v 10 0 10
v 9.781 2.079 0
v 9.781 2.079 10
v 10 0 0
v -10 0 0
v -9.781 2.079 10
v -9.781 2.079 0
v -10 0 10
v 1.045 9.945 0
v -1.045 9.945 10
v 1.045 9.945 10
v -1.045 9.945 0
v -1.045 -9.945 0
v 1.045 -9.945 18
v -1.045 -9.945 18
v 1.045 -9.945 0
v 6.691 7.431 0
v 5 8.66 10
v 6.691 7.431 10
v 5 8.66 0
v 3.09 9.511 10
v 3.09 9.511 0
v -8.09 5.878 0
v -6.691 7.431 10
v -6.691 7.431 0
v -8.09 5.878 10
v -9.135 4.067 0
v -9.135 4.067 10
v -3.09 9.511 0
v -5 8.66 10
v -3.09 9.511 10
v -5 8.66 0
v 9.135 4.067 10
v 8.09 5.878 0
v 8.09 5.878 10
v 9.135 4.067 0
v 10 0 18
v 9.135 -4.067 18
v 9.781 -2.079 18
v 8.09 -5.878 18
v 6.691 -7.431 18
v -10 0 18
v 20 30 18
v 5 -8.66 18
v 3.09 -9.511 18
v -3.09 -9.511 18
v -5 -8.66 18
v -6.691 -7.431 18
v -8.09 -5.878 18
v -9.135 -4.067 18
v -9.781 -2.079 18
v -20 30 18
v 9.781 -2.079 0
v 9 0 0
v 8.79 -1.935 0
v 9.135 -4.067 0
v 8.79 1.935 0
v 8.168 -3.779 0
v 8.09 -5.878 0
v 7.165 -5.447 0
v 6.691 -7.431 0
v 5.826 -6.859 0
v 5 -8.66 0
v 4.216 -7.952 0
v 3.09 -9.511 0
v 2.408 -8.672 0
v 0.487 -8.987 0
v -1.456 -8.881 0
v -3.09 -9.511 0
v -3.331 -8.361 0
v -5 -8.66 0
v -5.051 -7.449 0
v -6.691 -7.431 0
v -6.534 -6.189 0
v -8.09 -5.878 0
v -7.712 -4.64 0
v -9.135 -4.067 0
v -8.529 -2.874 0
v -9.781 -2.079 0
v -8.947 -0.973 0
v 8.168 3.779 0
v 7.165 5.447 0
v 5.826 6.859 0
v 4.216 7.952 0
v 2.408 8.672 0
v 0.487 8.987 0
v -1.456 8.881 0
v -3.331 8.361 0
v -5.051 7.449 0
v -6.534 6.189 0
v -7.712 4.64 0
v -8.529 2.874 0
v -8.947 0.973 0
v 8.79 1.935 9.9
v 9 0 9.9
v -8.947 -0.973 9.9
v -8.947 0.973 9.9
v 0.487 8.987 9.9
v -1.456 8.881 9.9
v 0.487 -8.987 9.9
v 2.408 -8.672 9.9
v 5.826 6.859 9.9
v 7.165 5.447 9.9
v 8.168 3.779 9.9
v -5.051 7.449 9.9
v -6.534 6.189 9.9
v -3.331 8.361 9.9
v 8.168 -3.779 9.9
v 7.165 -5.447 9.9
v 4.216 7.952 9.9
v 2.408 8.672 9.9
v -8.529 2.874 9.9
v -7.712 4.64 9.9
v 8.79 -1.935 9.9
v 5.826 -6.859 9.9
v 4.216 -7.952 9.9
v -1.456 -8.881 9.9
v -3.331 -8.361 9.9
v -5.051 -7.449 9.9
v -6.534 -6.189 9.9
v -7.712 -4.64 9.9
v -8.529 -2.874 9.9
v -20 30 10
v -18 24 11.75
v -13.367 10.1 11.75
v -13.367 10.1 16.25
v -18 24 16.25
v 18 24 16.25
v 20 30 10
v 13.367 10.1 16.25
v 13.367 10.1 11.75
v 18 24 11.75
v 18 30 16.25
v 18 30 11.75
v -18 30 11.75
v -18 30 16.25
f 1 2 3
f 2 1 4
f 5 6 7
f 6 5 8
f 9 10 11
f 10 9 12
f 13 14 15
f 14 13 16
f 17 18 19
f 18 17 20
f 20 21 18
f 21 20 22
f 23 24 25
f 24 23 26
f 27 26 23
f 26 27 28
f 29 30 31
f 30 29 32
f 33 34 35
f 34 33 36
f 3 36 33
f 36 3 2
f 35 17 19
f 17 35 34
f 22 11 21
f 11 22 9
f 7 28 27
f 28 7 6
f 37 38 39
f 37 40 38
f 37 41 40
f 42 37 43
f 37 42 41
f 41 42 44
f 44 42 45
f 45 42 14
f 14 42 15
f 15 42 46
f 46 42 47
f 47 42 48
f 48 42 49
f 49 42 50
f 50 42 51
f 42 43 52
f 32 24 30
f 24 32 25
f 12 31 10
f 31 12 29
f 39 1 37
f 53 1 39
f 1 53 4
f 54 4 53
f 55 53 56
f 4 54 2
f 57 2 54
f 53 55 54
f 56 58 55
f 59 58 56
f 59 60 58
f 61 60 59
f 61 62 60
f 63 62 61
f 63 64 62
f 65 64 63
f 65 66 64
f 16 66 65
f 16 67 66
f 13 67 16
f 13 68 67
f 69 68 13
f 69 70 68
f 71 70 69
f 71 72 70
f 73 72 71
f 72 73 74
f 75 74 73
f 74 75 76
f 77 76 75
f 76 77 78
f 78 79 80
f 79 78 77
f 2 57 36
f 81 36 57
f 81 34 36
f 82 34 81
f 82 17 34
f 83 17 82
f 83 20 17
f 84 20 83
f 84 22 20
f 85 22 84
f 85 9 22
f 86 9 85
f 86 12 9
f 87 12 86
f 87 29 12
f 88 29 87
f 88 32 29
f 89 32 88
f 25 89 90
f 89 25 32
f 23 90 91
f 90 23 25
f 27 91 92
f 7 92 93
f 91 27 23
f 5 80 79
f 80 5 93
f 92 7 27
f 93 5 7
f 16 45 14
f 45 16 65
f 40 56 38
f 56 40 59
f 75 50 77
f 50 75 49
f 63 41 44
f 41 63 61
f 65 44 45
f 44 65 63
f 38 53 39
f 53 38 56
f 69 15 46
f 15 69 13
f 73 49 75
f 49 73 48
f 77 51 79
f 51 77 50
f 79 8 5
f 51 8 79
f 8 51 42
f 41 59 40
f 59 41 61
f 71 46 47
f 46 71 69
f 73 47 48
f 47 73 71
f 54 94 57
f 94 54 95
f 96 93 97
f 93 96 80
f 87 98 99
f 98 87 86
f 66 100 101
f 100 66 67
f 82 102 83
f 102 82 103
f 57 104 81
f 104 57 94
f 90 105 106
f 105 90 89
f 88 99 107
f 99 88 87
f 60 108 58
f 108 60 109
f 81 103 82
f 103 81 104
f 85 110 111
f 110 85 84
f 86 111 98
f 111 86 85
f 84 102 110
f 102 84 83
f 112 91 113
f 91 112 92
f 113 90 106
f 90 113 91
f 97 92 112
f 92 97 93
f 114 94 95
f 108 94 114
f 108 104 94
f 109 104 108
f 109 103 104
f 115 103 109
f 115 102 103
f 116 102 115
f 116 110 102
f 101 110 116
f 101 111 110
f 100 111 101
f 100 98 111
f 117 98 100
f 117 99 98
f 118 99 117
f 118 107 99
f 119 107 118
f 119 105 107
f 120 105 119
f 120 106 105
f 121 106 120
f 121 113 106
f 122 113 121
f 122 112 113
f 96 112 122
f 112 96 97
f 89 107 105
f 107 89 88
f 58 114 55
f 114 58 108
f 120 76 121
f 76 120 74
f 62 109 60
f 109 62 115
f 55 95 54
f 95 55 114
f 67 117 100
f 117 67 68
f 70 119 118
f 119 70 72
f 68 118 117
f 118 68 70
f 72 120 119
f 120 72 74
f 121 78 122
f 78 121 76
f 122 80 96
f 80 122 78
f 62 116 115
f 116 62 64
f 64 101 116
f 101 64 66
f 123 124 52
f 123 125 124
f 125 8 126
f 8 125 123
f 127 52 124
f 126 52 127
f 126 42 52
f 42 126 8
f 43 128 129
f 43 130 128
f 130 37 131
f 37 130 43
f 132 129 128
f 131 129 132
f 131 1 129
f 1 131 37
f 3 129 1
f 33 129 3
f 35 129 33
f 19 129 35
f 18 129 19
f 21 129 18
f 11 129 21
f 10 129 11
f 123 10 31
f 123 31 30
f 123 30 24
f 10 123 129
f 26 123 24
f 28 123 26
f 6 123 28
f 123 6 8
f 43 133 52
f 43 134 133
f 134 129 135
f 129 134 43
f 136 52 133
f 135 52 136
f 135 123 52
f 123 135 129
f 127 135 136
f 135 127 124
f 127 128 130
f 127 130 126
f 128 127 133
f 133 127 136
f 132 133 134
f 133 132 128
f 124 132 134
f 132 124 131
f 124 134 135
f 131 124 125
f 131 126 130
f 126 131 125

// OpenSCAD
Wheel_D = 18;

difference() {
    cylinder(h=18, d=20);
    translate([0, 0, -0.1])
        cylinder(h=10, d=Wheel_D);
}

Camera_W = 36;
Camera_D = 4.5;

points = [
    [-10, 0],
    [10, 0],
    [20, 30],
    [-20, 30]
];
translate([0, 0, 10])
difference() {
    linear_extrude(8) polygon(points);
    translate([-36/2, 10.1, (8-4.5)/2])
        cube([36, 20, 4.5]);
}
